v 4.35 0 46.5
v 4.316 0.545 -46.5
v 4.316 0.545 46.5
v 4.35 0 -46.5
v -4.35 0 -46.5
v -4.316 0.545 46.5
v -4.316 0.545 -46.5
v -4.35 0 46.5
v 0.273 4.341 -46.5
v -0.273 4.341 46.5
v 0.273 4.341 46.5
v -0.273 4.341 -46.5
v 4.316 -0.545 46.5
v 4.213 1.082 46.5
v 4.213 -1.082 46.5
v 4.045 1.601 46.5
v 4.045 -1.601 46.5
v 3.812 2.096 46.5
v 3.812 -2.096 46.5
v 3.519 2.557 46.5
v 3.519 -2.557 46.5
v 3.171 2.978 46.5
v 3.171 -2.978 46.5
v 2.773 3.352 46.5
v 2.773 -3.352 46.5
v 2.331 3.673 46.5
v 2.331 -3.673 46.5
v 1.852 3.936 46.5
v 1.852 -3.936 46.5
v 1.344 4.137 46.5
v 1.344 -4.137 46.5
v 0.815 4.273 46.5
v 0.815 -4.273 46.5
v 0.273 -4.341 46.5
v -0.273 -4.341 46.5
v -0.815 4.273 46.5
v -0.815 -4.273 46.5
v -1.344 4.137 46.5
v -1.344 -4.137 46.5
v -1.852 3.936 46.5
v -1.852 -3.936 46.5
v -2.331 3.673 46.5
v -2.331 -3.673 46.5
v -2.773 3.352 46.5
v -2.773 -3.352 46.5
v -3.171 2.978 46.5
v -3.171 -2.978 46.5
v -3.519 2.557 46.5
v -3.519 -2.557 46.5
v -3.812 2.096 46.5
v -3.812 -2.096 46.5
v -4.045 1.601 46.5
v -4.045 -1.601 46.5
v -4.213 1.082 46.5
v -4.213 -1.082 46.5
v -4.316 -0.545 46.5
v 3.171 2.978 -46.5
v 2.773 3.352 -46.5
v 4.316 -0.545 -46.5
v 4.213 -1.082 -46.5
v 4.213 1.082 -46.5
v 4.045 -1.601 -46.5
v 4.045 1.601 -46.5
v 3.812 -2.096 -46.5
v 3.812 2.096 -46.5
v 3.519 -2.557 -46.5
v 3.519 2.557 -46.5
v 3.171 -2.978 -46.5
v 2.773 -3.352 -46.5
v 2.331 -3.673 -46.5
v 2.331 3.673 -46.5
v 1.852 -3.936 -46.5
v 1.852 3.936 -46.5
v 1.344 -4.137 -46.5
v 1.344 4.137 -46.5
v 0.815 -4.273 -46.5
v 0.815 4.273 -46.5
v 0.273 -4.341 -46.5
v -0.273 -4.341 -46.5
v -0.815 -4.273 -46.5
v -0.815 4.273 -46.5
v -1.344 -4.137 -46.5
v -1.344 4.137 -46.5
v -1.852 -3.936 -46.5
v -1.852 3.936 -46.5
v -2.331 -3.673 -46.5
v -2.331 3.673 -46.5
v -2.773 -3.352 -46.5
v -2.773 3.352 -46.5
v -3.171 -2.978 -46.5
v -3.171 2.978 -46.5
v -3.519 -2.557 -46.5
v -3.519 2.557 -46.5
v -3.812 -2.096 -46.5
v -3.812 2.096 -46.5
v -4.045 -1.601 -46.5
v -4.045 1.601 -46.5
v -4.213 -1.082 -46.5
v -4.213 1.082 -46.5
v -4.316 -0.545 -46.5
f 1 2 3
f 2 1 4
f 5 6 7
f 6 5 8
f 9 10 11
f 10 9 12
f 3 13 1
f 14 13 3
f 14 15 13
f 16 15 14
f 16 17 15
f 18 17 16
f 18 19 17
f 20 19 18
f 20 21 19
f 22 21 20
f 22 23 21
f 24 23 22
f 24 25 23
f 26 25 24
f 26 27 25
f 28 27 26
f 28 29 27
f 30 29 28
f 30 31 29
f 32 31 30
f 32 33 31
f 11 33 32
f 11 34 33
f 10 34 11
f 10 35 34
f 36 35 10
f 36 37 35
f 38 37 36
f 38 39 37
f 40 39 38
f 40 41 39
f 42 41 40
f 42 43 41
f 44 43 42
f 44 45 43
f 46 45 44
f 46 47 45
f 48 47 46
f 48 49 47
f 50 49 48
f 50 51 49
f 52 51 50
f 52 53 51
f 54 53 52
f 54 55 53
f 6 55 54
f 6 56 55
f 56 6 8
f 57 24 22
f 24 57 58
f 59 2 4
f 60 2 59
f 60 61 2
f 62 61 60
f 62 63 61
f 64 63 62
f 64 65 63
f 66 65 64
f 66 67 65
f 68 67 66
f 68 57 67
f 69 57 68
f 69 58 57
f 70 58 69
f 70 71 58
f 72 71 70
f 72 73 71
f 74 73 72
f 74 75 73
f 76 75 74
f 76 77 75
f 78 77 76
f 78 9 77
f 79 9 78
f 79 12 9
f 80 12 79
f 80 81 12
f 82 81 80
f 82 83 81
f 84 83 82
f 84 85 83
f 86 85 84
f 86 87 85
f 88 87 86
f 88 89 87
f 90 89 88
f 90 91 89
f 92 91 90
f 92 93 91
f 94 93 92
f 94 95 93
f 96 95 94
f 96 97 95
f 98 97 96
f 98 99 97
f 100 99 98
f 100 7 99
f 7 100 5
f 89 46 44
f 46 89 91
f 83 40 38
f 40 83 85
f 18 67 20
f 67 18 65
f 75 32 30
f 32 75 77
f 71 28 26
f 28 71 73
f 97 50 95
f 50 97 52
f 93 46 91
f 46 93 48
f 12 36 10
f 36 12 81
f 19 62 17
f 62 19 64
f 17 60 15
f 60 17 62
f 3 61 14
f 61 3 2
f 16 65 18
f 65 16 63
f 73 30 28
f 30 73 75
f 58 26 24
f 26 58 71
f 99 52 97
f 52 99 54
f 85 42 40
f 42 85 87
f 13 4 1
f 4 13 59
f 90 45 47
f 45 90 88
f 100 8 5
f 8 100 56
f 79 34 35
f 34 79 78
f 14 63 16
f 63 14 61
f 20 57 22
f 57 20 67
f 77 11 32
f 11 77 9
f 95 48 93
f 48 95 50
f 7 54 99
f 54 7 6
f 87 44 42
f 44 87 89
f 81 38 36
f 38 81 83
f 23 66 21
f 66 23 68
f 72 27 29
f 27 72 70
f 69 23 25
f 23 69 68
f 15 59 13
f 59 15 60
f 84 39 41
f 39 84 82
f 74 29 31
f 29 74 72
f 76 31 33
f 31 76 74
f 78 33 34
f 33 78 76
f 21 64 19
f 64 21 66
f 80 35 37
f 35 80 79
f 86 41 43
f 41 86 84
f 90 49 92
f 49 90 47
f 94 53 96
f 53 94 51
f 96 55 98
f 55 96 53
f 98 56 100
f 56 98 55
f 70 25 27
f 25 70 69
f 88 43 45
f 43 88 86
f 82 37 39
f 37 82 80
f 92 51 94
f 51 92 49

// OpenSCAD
$fn = 50;


difference() {
	union() {
		translate(v = [0, 0, -46.5000000000]) {
			cylinder(h = 93, r = 4.3500000000);
		}
	}
	union() {
		translate(v = [0, 0, -100.0000000000]) {
			cylinder(h = 200, r = 0);
		}
	}
}
